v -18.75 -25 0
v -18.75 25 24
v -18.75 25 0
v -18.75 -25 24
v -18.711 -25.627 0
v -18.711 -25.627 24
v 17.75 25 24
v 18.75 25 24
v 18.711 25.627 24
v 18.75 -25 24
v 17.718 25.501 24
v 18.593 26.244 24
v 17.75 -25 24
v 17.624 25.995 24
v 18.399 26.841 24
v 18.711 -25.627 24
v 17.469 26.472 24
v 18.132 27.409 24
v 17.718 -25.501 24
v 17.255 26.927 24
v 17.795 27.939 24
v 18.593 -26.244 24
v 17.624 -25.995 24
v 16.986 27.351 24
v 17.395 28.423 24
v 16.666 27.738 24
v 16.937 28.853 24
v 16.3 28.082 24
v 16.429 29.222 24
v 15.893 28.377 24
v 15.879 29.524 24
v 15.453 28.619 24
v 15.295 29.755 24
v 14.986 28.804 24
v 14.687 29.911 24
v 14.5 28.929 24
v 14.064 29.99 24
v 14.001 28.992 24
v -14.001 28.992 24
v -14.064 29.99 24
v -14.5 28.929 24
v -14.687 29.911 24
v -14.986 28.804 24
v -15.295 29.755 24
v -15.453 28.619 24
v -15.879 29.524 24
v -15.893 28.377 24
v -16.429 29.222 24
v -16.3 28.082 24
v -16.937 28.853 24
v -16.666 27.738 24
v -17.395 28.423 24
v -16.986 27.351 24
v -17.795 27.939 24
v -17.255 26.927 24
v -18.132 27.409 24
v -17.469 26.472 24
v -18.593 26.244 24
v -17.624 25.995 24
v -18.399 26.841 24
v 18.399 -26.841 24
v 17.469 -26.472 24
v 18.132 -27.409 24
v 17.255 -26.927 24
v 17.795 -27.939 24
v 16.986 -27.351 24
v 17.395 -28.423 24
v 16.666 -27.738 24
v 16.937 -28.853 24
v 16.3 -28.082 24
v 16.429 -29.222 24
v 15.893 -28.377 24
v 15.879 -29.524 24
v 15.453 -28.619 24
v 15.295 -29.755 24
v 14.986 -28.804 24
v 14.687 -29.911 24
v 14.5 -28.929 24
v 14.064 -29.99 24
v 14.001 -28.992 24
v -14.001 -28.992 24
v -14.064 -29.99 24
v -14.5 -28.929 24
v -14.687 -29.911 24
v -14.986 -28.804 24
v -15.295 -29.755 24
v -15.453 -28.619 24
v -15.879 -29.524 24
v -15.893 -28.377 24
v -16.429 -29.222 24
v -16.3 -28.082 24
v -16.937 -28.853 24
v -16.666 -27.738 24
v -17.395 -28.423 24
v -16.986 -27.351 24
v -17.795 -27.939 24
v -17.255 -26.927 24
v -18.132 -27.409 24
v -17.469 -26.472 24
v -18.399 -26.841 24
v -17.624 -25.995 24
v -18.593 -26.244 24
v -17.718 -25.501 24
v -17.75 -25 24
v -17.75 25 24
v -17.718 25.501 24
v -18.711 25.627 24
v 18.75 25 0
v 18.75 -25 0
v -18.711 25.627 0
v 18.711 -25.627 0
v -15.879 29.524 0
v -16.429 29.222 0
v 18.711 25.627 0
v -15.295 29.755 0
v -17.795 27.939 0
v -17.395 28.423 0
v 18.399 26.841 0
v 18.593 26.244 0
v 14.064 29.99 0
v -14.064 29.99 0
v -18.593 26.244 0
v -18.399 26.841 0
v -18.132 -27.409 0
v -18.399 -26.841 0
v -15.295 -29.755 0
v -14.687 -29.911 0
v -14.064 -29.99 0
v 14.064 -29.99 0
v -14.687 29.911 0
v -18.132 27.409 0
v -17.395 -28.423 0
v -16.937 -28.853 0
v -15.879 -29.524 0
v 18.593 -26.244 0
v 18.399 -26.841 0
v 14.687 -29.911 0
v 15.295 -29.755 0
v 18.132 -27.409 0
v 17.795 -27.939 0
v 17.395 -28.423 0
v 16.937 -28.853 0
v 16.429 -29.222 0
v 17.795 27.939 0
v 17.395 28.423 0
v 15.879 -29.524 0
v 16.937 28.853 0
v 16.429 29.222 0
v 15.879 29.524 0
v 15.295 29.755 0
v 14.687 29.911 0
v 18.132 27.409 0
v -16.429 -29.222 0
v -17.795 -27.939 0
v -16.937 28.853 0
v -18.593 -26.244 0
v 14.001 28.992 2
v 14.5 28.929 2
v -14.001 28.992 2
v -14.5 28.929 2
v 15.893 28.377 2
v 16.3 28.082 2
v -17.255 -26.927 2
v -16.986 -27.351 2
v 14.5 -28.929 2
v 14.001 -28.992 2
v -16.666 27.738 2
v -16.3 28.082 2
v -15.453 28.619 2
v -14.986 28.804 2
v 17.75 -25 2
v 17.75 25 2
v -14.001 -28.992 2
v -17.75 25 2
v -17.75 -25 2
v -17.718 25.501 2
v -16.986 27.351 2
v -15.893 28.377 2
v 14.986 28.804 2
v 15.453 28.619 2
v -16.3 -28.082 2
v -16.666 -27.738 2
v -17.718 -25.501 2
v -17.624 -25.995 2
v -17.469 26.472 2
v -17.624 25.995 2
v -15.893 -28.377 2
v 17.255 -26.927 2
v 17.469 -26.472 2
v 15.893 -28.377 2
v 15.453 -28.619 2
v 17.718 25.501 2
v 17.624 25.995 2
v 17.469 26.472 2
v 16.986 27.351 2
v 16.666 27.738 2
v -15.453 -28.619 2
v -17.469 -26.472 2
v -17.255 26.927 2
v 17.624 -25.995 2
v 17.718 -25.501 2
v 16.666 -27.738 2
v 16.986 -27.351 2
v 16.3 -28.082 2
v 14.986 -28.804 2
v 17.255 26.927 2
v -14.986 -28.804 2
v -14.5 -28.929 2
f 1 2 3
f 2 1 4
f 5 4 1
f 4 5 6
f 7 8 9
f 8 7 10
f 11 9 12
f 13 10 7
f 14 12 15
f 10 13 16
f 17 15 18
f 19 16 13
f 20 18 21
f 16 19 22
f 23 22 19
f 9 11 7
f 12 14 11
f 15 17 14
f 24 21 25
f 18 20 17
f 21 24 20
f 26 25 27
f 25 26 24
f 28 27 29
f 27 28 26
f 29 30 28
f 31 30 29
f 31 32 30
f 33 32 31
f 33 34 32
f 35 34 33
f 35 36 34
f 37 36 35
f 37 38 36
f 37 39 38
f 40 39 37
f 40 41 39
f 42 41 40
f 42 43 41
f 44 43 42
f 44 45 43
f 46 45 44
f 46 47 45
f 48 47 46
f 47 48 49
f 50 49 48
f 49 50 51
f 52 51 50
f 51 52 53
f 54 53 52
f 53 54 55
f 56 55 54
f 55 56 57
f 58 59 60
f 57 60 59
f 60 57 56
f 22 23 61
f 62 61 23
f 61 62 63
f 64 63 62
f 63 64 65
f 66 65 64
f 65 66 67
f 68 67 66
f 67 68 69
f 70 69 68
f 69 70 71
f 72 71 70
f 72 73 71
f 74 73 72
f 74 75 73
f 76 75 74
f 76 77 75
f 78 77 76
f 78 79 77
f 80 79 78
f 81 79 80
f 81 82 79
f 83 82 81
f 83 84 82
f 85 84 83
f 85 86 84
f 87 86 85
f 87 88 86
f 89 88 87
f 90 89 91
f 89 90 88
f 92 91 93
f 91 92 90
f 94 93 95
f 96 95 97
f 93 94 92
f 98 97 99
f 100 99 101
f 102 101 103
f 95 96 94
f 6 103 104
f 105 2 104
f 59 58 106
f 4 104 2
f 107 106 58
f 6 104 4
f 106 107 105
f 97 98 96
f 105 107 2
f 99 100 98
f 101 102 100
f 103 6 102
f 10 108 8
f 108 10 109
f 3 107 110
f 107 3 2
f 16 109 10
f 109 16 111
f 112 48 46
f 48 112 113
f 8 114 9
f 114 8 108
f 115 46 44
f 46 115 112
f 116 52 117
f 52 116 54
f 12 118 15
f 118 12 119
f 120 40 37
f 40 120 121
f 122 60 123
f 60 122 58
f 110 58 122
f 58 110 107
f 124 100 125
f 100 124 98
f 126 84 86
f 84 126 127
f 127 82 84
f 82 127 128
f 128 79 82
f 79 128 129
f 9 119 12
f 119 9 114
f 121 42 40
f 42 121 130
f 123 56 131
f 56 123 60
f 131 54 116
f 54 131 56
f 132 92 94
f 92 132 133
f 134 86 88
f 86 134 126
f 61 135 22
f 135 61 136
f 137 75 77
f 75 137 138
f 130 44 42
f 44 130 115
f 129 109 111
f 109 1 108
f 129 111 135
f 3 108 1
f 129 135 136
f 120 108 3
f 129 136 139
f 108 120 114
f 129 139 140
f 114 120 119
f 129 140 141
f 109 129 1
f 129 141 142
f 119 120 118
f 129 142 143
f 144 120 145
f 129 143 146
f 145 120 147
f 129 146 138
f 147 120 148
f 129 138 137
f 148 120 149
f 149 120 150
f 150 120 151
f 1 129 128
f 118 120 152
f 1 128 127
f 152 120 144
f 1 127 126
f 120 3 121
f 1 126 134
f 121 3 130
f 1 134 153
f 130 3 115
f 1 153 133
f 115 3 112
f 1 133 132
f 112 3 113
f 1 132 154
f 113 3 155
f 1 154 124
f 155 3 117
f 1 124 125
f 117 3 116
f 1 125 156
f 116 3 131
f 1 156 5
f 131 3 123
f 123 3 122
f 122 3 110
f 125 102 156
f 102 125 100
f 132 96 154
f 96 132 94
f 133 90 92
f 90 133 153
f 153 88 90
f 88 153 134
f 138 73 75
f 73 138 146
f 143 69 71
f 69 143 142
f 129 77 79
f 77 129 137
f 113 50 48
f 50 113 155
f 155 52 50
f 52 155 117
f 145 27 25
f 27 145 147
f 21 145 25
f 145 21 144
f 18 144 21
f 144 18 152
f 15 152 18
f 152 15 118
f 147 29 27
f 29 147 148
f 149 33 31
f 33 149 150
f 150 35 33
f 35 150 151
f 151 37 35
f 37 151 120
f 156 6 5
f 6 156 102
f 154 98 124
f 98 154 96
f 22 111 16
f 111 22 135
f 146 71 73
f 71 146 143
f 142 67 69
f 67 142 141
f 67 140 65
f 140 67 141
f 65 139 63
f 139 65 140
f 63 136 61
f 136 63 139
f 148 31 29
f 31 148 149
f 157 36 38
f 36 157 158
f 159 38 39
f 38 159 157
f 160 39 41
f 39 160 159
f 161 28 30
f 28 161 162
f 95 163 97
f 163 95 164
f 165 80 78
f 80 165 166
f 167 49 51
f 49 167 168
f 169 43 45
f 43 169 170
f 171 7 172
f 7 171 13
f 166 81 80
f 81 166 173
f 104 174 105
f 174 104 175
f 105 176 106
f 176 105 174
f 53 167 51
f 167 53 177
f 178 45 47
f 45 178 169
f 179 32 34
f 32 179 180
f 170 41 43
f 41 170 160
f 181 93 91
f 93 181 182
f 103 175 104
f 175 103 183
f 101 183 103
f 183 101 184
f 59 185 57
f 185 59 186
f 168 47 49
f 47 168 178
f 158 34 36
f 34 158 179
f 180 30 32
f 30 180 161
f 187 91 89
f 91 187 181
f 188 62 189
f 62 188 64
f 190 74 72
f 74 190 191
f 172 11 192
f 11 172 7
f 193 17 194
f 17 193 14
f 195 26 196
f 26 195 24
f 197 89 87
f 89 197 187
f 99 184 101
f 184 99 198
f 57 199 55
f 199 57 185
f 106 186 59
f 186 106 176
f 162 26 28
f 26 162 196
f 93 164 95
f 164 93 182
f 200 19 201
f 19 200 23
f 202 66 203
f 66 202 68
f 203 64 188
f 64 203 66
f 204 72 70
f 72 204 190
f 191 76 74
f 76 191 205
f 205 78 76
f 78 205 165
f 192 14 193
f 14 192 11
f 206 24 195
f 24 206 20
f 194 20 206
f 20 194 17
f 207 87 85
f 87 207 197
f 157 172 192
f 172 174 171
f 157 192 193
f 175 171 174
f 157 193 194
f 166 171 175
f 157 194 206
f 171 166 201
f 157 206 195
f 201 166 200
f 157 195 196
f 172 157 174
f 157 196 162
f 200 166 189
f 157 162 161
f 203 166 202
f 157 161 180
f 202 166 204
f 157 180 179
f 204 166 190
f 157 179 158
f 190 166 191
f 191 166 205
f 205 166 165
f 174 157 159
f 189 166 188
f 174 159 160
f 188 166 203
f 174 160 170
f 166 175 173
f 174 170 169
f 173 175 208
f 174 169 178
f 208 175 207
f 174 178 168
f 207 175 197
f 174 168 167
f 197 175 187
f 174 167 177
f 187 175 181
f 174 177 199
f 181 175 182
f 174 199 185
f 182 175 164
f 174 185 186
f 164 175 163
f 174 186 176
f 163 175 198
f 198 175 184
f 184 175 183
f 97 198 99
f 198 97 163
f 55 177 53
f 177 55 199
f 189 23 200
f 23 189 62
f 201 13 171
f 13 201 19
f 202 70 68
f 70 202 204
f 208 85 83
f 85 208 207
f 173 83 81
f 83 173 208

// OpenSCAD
$fn = 50;


difference() {
	union() {
		hull() {
			translate(v = [-13.7500000000, 25.0000000000, 0]) {
				cylinder(h = 24, r = 5);
			}
			translate(v = [13.7500000000, 25.0000000000, 0]) {
				cylinder(h = 24, r = 5);
			}
			translate(v = [-13.7500000000, -25.0000000000, 0]) {
				cylinder(h = 24, r = 5);
			}
			translate(v = [13.7500000000, -25.0000000000, 0]) {
				cylinder(h = 24, r = 5);
			}
		}
	}
	union() {
		translate(v = [0, 0, 2]) {
			#hull() {
				translate(v = [-13.7500000000, 25.0000000000, 0]) {
					cylinder(h = 22, r = 4);
				}
				translate(v = [13.7500000000, 25.0000000000, 0]) {
					cylinder(h = 22, r = 4);
				}
				translate(v = [-13.7500000000, -25.0000000000, 0]) {
					cylinder(h = 22, r = 4);
				}
				translate(v = [13.7500000000, -25.0000000000, 0]) {
					cylinder(h = 22, r = 4);
				}
			}
		}
	}
}
